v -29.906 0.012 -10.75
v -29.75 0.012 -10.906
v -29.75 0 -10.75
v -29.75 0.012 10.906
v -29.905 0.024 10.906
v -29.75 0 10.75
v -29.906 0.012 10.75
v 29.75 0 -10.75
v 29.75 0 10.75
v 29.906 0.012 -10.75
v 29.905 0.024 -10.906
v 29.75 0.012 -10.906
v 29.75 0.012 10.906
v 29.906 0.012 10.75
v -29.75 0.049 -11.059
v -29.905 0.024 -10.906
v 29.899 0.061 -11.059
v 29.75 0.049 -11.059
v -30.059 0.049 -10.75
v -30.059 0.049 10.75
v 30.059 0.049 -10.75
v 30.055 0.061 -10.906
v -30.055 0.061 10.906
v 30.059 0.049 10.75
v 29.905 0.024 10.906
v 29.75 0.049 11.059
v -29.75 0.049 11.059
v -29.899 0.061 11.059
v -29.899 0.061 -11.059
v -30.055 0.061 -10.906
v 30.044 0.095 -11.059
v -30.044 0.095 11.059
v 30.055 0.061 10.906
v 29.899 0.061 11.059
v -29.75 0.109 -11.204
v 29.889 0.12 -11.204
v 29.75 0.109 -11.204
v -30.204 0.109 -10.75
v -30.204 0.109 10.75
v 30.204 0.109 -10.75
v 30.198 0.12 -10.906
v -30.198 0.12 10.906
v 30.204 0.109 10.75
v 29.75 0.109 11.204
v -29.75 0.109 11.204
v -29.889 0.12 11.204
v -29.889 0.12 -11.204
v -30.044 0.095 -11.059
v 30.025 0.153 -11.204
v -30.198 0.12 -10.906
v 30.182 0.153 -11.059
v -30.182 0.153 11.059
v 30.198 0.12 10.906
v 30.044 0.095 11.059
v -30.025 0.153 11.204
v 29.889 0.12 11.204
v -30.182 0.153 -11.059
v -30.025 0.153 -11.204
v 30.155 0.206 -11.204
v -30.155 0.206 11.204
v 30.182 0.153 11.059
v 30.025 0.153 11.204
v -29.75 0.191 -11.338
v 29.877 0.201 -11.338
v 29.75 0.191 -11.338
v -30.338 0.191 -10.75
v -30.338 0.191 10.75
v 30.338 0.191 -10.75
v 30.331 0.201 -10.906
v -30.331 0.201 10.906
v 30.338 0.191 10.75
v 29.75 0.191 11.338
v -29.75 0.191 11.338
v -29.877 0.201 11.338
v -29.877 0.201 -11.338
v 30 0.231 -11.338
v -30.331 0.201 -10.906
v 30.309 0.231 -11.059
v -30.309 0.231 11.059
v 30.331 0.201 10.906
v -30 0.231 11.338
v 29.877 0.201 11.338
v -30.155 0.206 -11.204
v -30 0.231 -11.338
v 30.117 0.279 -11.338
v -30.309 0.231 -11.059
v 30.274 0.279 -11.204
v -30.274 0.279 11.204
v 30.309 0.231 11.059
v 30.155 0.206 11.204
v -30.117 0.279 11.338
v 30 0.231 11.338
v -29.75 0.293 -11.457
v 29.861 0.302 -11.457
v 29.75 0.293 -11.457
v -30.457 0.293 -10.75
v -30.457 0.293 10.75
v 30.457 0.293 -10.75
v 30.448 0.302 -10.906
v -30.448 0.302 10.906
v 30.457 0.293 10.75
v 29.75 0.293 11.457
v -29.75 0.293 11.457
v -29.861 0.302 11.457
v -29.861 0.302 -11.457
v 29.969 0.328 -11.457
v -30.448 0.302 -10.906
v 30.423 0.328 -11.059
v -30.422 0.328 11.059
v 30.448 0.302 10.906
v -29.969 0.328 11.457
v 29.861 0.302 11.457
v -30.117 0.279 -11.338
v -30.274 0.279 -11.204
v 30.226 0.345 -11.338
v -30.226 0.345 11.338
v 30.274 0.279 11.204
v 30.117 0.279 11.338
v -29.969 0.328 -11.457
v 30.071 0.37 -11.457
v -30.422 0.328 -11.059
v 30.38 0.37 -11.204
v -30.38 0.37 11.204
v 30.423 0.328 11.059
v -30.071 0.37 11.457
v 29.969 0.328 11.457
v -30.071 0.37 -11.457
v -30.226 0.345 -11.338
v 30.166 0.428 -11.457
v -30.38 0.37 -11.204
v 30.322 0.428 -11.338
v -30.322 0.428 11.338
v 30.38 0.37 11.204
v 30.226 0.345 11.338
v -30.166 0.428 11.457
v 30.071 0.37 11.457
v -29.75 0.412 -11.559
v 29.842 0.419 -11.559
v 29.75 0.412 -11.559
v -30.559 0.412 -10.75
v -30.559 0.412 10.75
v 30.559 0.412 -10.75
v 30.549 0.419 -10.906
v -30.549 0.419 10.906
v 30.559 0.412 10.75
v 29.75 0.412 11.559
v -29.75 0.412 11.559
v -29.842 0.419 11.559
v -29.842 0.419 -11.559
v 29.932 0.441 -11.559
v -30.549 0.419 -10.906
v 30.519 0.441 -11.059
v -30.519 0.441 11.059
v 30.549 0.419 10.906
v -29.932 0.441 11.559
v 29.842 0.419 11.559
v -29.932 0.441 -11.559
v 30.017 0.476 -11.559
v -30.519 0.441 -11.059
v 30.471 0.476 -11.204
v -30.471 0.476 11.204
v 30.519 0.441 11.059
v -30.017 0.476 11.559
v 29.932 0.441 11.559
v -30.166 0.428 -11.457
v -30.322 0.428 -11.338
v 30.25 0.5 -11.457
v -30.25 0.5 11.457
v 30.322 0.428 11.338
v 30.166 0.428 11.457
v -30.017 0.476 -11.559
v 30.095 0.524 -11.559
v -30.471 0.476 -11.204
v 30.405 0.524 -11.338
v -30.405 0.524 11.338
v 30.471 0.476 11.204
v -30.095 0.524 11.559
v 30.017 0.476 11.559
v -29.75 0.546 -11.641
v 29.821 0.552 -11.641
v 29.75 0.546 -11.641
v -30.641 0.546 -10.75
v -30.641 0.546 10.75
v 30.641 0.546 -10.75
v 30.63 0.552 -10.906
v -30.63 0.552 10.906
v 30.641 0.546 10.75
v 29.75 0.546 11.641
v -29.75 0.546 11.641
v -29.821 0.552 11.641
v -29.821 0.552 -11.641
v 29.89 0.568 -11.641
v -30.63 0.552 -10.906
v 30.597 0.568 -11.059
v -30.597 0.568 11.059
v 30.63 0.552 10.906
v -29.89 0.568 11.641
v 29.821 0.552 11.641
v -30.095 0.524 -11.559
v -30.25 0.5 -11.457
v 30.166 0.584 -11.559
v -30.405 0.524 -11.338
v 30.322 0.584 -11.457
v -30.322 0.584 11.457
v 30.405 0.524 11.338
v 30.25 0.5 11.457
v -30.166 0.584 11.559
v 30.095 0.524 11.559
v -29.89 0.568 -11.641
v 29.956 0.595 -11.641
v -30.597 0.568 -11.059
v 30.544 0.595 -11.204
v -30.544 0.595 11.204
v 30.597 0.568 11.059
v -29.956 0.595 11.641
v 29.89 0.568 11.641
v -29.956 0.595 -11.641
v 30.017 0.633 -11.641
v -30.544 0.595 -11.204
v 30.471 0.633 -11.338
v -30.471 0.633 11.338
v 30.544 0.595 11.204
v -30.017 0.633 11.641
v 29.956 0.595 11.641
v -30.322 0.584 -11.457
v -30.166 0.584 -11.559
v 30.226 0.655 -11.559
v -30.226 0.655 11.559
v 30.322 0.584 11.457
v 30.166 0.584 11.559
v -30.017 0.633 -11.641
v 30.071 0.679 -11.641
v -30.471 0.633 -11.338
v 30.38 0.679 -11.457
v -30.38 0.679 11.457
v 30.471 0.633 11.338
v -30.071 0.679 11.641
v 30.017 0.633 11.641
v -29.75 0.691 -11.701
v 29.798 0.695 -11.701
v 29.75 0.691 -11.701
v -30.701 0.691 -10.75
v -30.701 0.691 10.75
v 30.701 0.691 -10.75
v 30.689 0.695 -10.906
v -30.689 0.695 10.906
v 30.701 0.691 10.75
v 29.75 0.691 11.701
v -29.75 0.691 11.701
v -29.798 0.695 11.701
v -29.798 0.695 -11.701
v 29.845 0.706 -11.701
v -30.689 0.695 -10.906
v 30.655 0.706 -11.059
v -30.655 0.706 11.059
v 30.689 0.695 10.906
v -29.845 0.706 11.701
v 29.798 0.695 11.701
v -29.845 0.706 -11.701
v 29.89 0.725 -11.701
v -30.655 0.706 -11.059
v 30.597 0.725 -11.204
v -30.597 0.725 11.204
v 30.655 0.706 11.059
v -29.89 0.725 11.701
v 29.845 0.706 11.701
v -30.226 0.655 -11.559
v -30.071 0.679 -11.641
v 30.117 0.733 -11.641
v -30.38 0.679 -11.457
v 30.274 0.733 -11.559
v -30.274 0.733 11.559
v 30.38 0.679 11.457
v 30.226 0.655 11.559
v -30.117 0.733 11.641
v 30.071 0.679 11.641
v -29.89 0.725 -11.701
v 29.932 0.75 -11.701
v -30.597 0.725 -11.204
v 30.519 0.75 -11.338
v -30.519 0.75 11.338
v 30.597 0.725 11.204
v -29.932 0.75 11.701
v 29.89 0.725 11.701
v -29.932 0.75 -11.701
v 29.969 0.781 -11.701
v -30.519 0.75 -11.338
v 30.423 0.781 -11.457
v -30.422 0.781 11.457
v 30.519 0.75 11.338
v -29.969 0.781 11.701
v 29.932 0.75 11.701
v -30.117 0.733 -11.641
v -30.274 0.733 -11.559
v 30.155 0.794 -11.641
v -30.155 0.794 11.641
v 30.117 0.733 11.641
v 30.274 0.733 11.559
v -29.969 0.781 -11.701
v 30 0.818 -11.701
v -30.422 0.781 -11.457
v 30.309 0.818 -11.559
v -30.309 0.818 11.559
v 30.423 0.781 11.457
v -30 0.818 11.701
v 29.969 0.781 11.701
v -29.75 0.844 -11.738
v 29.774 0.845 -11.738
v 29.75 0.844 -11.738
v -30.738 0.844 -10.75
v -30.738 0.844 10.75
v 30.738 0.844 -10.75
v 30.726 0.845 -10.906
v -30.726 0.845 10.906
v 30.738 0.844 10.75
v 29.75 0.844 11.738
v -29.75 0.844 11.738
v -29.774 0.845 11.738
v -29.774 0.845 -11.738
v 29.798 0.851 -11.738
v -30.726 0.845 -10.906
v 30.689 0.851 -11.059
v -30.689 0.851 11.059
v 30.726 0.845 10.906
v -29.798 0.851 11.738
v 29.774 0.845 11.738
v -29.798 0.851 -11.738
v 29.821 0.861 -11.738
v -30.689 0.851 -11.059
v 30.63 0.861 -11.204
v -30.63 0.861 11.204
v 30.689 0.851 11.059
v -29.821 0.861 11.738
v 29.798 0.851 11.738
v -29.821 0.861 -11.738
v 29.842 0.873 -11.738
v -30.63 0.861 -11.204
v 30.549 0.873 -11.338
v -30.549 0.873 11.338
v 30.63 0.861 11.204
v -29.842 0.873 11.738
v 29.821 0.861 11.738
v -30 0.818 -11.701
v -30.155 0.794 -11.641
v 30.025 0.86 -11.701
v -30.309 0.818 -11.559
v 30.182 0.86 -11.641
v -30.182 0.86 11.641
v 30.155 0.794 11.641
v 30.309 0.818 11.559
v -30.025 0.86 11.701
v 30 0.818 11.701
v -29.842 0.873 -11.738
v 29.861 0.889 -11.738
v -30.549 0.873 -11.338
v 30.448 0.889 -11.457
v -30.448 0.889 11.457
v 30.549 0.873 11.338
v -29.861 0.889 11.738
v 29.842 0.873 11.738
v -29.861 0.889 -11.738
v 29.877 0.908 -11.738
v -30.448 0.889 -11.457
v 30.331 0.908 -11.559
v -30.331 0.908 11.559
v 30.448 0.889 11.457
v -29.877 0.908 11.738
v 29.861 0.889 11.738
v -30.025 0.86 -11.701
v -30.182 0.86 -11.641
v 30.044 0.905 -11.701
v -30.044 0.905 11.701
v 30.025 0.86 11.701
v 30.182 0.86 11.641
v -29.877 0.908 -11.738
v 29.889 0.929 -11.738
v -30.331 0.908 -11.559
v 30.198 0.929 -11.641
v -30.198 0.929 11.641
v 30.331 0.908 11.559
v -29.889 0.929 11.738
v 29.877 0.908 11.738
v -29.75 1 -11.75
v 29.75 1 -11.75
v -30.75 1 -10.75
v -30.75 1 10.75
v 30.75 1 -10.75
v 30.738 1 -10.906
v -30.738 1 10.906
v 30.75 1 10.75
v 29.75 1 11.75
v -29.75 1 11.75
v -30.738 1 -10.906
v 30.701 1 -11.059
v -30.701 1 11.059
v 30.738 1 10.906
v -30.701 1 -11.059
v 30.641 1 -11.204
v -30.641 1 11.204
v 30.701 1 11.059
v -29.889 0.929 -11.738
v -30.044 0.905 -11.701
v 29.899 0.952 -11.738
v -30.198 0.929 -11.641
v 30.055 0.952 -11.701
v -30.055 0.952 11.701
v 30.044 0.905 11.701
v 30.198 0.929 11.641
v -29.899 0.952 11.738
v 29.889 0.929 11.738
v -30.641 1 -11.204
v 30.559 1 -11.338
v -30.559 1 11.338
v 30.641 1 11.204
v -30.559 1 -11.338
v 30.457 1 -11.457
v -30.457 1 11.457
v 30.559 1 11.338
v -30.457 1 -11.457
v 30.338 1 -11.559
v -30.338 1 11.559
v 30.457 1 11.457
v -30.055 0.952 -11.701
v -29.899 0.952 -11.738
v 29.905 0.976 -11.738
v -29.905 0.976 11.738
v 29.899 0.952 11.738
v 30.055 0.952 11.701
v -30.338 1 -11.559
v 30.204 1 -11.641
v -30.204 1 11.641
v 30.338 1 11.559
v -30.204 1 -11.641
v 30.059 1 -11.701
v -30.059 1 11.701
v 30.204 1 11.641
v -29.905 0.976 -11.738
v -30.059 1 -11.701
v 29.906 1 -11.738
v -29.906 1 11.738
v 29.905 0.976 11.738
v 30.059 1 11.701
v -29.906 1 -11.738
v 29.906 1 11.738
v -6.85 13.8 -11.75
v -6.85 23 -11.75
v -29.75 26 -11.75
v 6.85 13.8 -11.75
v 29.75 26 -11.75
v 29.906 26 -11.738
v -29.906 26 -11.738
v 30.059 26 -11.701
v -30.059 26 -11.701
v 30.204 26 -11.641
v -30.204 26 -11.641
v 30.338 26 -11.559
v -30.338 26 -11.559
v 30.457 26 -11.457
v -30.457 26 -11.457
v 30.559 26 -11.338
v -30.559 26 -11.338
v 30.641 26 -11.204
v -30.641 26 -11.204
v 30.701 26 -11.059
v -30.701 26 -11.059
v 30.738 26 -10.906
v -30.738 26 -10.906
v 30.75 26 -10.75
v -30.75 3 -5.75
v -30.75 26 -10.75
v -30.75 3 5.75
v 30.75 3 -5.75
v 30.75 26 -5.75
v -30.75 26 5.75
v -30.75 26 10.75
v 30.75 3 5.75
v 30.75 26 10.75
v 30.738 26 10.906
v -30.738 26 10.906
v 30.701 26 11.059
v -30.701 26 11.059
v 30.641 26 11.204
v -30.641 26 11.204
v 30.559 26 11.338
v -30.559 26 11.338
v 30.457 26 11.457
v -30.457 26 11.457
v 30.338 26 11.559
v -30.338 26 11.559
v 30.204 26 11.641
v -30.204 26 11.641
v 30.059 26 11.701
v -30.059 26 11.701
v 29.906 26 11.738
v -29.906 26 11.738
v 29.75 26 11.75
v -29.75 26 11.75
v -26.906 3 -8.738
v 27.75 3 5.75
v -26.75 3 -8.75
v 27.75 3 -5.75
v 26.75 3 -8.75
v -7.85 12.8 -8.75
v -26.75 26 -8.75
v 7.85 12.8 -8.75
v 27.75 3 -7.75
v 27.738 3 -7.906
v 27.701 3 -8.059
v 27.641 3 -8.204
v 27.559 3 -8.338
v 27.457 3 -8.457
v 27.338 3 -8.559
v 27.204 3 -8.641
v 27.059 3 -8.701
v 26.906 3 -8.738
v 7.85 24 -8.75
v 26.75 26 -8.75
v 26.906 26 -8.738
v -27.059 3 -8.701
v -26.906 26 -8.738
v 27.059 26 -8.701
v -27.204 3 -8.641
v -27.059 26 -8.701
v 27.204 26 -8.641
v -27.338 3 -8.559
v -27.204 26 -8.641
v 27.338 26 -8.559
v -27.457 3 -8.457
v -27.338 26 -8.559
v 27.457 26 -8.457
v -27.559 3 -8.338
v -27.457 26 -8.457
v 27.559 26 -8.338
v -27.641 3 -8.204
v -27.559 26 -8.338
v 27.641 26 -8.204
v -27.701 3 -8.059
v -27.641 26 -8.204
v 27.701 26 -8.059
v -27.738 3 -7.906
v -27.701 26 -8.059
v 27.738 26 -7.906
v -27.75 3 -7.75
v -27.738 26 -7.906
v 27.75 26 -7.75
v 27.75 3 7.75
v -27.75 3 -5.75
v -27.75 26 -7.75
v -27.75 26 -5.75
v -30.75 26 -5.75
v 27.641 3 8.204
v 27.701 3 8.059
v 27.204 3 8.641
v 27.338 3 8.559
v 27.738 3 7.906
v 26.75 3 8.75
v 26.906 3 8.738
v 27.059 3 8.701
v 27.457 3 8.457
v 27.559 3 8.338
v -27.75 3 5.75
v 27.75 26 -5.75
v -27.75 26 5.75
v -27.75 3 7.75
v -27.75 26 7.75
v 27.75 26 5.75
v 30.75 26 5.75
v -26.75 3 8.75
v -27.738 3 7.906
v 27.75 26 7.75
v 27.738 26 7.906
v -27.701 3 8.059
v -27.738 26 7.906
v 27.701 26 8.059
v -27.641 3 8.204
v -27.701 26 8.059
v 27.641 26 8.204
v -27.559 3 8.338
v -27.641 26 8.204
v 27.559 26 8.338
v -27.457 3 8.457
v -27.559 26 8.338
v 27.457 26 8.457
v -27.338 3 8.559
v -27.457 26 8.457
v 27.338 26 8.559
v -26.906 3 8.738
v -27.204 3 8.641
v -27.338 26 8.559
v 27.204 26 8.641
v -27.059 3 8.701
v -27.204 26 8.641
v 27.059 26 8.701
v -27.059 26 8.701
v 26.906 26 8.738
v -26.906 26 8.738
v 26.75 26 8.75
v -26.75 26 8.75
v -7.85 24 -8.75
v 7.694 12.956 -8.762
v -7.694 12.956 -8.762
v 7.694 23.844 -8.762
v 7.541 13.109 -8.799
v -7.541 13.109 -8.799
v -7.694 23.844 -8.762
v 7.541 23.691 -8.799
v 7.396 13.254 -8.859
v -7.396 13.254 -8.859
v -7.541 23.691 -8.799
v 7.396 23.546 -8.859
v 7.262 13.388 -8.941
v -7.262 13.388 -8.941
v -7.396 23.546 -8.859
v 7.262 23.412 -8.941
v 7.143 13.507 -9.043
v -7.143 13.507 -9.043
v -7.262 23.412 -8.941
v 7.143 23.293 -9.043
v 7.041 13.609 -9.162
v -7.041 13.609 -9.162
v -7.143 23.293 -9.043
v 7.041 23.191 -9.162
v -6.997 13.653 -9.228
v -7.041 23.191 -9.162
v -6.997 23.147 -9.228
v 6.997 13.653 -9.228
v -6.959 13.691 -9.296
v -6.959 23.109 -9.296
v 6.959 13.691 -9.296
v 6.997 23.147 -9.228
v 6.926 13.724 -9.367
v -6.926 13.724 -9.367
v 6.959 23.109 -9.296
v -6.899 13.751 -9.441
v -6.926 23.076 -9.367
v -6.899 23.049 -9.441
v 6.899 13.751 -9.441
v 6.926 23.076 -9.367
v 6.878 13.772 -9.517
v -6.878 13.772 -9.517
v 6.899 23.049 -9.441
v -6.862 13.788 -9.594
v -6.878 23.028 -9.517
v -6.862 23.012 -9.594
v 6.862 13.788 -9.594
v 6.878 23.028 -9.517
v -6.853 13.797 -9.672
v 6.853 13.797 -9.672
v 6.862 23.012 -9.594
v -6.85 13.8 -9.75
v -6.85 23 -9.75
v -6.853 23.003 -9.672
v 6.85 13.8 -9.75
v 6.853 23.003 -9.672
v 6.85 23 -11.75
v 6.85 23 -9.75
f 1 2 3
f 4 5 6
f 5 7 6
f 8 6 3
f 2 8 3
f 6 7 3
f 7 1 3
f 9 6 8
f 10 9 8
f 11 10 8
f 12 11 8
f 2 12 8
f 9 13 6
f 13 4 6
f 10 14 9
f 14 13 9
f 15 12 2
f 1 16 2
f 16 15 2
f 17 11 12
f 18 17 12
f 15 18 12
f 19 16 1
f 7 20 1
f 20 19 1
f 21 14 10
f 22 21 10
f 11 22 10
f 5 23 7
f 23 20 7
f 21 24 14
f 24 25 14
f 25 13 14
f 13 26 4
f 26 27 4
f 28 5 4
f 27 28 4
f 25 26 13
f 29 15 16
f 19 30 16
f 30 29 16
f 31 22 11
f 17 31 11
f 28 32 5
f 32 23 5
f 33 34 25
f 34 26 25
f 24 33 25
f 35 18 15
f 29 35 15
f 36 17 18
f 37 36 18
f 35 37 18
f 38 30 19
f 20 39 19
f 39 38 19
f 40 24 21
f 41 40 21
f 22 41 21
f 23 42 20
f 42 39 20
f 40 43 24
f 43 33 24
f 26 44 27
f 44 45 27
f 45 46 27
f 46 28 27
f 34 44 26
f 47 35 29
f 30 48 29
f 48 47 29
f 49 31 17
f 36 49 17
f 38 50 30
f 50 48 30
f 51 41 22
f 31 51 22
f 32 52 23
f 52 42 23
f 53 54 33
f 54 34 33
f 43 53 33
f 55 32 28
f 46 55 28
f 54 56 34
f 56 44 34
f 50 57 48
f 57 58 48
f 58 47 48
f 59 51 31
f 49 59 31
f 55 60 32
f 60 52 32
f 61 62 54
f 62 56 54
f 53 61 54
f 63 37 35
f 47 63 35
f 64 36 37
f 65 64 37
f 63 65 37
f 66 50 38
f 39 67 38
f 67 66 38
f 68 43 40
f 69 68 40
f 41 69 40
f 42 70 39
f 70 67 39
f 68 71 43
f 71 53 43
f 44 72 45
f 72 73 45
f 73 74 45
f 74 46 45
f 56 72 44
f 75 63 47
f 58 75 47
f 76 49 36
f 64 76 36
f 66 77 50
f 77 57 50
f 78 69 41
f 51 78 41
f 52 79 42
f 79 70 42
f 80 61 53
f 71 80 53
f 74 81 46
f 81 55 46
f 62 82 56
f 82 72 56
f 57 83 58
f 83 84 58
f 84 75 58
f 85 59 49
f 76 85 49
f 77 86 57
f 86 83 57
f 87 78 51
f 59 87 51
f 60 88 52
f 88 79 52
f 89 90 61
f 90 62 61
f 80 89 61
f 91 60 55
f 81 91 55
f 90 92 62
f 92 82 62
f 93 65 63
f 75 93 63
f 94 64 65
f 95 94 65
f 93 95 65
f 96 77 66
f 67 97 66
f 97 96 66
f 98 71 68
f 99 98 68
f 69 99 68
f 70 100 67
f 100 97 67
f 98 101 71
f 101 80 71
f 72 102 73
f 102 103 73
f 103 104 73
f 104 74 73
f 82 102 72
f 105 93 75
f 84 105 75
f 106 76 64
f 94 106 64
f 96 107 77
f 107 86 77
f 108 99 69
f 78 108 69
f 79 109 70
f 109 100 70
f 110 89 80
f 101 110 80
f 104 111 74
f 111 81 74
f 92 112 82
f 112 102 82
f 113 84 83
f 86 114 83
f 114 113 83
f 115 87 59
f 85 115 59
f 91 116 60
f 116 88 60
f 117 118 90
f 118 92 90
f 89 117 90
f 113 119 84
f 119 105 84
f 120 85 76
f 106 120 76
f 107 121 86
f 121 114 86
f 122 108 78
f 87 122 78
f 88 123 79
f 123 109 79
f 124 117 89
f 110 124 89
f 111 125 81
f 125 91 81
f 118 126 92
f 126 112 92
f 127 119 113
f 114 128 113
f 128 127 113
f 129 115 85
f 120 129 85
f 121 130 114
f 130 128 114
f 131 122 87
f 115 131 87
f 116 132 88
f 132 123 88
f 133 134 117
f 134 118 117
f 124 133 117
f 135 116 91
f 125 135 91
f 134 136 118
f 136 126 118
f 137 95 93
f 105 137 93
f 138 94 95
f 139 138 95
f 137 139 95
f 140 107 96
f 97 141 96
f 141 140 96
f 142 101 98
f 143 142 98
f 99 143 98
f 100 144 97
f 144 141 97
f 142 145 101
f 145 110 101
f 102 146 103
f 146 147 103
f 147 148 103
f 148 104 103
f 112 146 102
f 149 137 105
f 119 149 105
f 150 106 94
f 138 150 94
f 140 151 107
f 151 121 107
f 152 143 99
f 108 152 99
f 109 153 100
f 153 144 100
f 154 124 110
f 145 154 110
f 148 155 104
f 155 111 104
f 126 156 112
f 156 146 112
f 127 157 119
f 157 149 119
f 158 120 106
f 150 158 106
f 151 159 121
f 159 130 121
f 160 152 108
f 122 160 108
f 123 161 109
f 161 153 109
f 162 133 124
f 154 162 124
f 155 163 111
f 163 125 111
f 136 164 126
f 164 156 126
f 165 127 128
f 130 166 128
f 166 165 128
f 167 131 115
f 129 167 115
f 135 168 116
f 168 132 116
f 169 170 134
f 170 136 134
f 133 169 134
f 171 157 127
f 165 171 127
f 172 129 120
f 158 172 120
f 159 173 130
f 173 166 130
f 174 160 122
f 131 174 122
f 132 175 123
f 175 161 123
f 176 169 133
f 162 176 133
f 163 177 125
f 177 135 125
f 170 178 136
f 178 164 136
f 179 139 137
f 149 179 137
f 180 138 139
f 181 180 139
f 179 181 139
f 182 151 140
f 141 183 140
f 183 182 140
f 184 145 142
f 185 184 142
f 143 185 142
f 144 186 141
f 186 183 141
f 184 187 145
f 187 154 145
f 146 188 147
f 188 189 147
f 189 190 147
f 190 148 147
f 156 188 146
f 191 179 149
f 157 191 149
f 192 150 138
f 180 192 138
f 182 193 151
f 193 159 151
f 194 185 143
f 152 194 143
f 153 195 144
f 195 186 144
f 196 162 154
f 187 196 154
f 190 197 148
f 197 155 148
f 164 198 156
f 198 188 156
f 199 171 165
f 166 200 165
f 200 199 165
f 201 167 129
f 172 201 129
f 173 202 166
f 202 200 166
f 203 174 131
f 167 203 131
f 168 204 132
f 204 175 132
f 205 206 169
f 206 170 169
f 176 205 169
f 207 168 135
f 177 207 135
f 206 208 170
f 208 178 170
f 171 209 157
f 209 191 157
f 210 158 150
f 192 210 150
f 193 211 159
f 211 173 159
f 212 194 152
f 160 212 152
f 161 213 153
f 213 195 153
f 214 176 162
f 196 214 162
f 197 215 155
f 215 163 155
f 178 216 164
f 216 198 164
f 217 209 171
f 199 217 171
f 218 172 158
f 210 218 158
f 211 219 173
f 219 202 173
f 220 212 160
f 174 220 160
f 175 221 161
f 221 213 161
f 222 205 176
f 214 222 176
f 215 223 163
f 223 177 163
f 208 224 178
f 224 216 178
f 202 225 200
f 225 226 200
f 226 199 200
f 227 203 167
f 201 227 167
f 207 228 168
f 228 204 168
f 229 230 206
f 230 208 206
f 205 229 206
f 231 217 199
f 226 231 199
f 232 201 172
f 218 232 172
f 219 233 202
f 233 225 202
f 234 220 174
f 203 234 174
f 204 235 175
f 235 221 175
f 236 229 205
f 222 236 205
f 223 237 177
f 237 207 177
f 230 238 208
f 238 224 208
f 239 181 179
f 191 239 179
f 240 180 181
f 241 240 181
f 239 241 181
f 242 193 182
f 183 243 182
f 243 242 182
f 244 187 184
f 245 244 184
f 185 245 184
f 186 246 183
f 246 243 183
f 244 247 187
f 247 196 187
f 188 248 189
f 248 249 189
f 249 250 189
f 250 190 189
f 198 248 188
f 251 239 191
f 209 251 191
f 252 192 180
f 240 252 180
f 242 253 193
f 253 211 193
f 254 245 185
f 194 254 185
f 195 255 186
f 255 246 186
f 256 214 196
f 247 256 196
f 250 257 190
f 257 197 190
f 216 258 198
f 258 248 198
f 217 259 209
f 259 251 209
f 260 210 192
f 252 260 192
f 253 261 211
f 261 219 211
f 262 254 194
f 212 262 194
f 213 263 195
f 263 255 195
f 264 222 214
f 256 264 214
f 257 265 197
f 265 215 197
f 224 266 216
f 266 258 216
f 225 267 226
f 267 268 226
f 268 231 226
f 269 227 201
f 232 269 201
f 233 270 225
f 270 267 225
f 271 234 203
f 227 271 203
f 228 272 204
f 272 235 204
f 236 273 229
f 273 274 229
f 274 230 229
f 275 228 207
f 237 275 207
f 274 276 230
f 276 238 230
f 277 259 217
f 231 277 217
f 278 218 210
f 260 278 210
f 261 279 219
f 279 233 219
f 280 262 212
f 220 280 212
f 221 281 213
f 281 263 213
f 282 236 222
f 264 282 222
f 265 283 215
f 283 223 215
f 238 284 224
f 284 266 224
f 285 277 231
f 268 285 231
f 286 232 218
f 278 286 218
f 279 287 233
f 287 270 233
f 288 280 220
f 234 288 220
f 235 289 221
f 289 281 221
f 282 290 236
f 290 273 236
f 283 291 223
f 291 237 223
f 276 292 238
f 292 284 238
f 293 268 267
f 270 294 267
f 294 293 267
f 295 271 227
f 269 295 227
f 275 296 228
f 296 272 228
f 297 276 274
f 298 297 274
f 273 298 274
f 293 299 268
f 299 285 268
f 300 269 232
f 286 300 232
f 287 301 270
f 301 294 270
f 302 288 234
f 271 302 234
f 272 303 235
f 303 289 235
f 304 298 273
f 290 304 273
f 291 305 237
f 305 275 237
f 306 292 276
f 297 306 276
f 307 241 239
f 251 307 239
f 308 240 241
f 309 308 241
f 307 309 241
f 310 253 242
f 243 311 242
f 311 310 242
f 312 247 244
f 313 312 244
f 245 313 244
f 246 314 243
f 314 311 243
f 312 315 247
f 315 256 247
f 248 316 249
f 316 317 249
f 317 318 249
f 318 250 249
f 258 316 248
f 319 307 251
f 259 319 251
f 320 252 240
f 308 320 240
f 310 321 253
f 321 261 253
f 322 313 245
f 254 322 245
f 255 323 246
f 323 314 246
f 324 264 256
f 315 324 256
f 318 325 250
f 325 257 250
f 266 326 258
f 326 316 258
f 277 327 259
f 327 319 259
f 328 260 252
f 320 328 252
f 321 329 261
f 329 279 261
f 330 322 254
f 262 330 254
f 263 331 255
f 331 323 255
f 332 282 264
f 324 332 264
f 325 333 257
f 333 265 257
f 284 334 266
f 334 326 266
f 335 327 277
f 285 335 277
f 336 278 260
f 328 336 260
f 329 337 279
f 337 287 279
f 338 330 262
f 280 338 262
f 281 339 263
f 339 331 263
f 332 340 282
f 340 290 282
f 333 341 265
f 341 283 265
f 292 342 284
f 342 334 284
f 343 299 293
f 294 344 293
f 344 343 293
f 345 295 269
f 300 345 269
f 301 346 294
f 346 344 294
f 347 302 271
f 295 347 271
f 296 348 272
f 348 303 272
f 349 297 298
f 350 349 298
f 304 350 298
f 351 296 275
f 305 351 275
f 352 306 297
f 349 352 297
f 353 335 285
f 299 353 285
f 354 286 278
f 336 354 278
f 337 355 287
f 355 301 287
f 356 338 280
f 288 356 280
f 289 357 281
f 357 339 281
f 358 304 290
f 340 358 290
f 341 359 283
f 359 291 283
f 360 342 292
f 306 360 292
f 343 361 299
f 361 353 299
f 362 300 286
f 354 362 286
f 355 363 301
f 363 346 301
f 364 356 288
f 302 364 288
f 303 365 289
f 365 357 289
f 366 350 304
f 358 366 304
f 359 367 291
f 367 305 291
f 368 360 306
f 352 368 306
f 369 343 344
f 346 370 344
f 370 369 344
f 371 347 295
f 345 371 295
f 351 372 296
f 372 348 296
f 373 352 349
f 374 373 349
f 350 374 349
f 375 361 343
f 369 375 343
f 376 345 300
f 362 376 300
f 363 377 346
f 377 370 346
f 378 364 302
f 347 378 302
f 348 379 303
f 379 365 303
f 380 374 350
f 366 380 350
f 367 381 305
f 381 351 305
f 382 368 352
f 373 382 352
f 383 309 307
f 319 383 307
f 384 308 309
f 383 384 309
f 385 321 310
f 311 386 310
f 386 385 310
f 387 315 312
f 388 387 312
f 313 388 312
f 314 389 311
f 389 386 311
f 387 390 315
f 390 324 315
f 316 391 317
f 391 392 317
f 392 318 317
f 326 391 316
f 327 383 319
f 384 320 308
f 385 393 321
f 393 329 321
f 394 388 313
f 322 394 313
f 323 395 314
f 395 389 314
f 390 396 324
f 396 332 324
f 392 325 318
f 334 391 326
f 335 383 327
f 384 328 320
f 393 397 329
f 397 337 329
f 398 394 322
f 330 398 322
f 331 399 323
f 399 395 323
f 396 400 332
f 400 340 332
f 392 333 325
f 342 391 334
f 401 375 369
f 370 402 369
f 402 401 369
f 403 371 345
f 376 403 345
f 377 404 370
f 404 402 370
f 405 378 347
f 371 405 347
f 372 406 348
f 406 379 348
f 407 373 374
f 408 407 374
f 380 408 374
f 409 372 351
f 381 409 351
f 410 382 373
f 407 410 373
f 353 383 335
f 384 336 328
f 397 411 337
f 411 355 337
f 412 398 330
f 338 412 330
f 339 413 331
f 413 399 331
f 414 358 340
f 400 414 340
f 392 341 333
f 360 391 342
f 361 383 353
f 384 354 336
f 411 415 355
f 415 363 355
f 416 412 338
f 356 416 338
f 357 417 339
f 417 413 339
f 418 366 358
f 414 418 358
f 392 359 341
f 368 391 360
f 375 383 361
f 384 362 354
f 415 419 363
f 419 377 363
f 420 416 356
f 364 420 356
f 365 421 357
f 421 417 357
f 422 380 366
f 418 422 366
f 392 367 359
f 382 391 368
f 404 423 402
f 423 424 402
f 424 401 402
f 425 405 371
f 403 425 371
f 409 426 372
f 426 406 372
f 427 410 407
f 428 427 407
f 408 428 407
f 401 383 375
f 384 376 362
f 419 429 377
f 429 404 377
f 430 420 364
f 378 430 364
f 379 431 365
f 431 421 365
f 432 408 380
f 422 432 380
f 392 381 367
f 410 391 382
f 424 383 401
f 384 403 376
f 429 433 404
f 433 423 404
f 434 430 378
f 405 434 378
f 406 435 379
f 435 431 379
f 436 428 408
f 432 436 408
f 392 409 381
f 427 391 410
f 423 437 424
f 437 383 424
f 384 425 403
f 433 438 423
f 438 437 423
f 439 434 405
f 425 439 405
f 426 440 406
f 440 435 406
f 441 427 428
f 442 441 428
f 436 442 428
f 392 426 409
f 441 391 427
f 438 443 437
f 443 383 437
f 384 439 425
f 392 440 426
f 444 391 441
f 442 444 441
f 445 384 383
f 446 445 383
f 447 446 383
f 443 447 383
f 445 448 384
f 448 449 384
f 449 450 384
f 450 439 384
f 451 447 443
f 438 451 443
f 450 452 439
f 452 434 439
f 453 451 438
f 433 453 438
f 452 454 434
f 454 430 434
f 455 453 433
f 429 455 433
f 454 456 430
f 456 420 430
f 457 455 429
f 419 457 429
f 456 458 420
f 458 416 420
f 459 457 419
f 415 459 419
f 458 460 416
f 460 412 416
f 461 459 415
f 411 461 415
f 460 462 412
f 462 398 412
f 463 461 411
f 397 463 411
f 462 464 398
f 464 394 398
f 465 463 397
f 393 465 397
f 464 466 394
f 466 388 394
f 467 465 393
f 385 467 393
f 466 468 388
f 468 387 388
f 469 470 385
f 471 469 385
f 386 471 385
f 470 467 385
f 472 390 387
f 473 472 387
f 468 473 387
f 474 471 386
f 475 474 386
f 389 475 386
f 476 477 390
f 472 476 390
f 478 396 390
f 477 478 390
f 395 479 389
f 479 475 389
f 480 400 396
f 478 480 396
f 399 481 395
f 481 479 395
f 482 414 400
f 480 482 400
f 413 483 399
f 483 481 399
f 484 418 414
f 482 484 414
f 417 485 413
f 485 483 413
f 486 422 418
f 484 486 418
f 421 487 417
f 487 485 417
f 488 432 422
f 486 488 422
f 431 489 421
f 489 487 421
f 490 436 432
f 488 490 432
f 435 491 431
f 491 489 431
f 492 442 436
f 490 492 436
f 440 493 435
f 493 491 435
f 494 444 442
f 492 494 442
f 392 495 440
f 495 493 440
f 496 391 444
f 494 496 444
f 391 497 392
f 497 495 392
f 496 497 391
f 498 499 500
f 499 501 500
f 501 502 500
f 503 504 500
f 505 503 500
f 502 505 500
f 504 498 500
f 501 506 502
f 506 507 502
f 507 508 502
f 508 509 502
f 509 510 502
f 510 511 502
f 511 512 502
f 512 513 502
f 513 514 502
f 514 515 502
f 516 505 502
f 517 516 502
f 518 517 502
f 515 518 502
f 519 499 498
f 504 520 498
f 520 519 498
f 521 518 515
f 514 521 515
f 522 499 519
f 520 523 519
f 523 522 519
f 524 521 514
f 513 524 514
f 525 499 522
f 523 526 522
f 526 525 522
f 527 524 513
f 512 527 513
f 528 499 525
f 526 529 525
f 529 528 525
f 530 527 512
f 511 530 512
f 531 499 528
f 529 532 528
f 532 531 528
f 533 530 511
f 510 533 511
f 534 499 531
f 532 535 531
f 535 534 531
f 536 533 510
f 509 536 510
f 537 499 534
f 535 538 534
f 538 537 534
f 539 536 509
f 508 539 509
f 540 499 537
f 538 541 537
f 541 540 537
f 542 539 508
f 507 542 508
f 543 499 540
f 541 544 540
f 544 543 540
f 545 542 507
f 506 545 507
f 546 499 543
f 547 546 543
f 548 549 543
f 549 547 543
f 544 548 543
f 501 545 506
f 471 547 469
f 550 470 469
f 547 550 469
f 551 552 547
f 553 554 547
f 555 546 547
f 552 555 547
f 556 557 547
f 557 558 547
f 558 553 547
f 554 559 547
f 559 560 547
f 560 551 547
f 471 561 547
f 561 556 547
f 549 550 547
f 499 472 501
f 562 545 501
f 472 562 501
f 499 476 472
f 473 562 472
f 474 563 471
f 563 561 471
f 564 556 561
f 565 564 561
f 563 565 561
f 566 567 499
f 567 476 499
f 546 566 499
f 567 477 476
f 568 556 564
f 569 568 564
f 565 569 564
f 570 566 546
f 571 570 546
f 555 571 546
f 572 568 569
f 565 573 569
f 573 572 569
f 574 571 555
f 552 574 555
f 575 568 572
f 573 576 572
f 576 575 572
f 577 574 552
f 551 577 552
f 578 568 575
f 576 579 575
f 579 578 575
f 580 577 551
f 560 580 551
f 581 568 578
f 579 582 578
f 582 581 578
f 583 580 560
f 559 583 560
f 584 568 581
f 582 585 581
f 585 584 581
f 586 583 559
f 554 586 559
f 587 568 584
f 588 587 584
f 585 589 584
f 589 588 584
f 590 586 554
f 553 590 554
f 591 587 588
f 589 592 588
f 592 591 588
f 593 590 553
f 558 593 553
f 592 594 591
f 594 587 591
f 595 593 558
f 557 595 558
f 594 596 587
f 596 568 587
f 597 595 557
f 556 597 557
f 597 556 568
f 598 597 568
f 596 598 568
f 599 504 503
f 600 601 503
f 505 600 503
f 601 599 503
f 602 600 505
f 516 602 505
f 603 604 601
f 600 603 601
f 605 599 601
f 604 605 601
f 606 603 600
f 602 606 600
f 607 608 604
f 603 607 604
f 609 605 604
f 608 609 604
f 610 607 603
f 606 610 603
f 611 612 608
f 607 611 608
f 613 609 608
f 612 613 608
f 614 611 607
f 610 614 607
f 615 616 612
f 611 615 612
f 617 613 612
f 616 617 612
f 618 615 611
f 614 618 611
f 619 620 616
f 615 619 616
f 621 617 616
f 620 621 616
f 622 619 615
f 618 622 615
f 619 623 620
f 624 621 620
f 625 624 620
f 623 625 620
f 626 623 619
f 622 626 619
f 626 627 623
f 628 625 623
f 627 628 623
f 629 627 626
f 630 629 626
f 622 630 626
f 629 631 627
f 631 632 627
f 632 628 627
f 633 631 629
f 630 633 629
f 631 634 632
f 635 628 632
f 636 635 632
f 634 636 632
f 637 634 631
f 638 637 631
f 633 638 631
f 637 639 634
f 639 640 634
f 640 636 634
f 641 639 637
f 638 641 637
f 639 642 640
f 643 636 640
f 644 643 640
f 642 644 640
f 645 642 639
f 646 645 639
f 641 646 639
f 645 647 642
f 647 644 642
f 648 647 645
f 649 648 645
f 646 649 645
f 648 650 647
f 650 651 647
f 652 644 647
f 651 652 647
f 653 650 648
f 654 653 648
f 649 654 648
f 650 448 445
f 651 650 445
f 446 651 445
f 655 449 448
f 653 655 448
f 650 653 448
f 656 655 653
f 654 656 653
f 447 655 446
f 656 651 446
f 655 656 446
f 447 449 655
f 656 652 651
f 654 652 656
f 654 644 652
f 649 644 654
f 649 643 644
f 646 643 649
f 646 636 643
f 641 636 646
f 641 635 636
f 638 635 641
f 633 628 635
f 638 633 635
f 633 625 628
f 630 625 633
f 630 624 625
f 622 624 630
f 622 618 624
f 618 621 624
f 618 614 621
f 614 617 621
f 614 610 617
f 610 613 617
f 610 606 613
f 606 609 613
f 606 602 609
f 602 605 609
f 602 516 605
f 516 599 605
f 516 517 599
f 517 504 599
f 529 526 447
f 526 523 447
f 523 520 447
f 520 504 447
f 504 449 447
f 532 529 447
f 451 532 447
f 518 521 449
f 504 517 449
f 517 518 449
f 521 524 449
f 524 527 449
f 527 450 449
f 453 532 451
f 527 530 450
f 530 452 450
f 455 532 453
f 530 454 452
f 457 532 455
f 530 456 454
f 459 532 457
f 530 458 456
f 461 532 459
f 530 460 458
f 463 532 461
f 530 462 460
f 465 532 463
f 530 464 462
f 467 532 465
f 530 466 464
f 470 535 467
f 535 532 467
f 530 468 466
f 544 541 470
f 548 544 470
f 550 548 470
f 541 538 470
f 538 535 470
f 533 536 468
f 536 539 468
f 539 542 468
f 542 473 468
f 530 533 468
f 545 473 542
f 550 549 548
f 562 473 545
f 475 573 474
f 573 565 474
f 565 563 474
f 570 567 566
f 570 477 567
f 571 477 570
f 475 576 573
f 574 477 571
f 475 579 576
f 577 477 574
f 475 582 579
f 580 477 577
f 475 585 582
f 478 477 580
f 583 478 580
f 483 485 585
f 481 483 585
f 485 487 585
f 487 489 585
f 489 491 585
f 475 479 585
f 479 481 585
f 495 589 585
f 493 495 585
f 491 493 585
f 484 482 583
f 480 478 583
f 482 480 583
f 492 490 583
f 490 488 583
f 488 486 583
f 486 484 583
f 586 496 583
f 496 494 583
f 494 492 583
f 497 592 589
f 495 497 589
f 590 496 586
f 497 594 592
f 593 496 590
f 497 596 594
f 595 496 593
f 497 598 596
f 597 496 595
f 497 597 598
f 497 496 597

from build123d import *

# Parameters (mm, degrees)
SKETCH1_W           = 61.5
SKETCH1_H           = 23.5
BOSS_EXTRUDE1_DEPTH = 3
BOSS_EXTRUDE2_DEPTH = 23
FILLET1_R           = 1
CUT_EXTRUDE1_REACH  = 48.624
FILLET2_R           = 1


with BuildPart() as part:
    # Sketch1 → Boss-Extrude1 (new body)
    with BuildSketch(Plane(origin=(0, 0, 0), x_dir=(1, 0, 0), z_dir=(0, 1, 0))):
        Rectangle(SKETCH1_W, SKETCH1_H)
    extrude(amount=BOSS_EXTRUDE1_DEPTH)

    # Sketch2 → Boss-Extrude2 (add)
    with BuildSketch(Plane(origin=(0, 3, 0), x_dir=(1, 0, 0), z_dir=(0, 1, 0))):
        Polygon((-27.75, -5.75), (-30.75, -5.75), (-30.75, -11.75), (30.75, -11.75), (30.75, -5.75), (27.75, -5.75), (27.75, -8.75), (-27.75, -8.75), align=None)
        Polygon((30.75, 5.75), (30.75, 11.75), (-30.75, 11.75), (-30.75, 5.75), (-27.75, 5.75), (-27.75, 8.75), (27.75, 8.75), (27.75, 5.75), align=None)
    extrude(amount=BOSS_EXTRUDE2_DEPTH)

    # Fillet1
    fillet1_edges = [part.edges().sort_by_distance(p)[0] for p in [
        (27.75, 14.5, 8.75),
        (-27.75, 14.5, 8.75),
        (-27.75, 14.5, -8.75),
        (27.75, 14.5, -8.75),
        (-30.75, 0, 0),
        (0, 0, 11.75),
        (30.75, 0, 0),
        (0, 0, -11.75),
        (-30.75, 13, -11.75),
        (-30.75, 13, 11.75),
        (30.75, 13, 11.75),
        (30.75, 13, -11.75),
    ]]
    fillet(fillet1_edges, radius=FILLET1_R)

    # Sketch3 → Cut-Extrude1 (cut, up to next)
    with BuildSketch(Plane(origin=(0, 0, -11.75), x_dir=(-1, 0, 0), z_dir=(0, 0, -1)), mode=Mode.PRIVATE) as cut_extrude1_sk1:
        Polygon((6.85, 13.8), (6.85, 23), (0, 23), (-6.85, 23), (-6.85, 13.8), align=None)
    cut_extrude1_tool1 = extrude(cut_extrude1_sk1.sketch, amount=-CUT_EXTRUDE1_REACH, mode=Mode.PRIVATE) & part.part
    add(cut_extrude1_tool1.solids().sort_by_distance((0, 18.4, -11.75))[0], mode=Mode.SUBTRACT)

    # Fillet2
    fillet2_edges = [part.edges().sort_by_distance(p)[0] for p in [
        (0, 23, -8.75),
        (-6.85, 18.4, -8.75),
        (0, 13.8, -8.75),
        (6.85, 18.4, -8.75),
    ]]
    fillet(fillet2_edges, radius=FILLET2_R)


solid = part.part
